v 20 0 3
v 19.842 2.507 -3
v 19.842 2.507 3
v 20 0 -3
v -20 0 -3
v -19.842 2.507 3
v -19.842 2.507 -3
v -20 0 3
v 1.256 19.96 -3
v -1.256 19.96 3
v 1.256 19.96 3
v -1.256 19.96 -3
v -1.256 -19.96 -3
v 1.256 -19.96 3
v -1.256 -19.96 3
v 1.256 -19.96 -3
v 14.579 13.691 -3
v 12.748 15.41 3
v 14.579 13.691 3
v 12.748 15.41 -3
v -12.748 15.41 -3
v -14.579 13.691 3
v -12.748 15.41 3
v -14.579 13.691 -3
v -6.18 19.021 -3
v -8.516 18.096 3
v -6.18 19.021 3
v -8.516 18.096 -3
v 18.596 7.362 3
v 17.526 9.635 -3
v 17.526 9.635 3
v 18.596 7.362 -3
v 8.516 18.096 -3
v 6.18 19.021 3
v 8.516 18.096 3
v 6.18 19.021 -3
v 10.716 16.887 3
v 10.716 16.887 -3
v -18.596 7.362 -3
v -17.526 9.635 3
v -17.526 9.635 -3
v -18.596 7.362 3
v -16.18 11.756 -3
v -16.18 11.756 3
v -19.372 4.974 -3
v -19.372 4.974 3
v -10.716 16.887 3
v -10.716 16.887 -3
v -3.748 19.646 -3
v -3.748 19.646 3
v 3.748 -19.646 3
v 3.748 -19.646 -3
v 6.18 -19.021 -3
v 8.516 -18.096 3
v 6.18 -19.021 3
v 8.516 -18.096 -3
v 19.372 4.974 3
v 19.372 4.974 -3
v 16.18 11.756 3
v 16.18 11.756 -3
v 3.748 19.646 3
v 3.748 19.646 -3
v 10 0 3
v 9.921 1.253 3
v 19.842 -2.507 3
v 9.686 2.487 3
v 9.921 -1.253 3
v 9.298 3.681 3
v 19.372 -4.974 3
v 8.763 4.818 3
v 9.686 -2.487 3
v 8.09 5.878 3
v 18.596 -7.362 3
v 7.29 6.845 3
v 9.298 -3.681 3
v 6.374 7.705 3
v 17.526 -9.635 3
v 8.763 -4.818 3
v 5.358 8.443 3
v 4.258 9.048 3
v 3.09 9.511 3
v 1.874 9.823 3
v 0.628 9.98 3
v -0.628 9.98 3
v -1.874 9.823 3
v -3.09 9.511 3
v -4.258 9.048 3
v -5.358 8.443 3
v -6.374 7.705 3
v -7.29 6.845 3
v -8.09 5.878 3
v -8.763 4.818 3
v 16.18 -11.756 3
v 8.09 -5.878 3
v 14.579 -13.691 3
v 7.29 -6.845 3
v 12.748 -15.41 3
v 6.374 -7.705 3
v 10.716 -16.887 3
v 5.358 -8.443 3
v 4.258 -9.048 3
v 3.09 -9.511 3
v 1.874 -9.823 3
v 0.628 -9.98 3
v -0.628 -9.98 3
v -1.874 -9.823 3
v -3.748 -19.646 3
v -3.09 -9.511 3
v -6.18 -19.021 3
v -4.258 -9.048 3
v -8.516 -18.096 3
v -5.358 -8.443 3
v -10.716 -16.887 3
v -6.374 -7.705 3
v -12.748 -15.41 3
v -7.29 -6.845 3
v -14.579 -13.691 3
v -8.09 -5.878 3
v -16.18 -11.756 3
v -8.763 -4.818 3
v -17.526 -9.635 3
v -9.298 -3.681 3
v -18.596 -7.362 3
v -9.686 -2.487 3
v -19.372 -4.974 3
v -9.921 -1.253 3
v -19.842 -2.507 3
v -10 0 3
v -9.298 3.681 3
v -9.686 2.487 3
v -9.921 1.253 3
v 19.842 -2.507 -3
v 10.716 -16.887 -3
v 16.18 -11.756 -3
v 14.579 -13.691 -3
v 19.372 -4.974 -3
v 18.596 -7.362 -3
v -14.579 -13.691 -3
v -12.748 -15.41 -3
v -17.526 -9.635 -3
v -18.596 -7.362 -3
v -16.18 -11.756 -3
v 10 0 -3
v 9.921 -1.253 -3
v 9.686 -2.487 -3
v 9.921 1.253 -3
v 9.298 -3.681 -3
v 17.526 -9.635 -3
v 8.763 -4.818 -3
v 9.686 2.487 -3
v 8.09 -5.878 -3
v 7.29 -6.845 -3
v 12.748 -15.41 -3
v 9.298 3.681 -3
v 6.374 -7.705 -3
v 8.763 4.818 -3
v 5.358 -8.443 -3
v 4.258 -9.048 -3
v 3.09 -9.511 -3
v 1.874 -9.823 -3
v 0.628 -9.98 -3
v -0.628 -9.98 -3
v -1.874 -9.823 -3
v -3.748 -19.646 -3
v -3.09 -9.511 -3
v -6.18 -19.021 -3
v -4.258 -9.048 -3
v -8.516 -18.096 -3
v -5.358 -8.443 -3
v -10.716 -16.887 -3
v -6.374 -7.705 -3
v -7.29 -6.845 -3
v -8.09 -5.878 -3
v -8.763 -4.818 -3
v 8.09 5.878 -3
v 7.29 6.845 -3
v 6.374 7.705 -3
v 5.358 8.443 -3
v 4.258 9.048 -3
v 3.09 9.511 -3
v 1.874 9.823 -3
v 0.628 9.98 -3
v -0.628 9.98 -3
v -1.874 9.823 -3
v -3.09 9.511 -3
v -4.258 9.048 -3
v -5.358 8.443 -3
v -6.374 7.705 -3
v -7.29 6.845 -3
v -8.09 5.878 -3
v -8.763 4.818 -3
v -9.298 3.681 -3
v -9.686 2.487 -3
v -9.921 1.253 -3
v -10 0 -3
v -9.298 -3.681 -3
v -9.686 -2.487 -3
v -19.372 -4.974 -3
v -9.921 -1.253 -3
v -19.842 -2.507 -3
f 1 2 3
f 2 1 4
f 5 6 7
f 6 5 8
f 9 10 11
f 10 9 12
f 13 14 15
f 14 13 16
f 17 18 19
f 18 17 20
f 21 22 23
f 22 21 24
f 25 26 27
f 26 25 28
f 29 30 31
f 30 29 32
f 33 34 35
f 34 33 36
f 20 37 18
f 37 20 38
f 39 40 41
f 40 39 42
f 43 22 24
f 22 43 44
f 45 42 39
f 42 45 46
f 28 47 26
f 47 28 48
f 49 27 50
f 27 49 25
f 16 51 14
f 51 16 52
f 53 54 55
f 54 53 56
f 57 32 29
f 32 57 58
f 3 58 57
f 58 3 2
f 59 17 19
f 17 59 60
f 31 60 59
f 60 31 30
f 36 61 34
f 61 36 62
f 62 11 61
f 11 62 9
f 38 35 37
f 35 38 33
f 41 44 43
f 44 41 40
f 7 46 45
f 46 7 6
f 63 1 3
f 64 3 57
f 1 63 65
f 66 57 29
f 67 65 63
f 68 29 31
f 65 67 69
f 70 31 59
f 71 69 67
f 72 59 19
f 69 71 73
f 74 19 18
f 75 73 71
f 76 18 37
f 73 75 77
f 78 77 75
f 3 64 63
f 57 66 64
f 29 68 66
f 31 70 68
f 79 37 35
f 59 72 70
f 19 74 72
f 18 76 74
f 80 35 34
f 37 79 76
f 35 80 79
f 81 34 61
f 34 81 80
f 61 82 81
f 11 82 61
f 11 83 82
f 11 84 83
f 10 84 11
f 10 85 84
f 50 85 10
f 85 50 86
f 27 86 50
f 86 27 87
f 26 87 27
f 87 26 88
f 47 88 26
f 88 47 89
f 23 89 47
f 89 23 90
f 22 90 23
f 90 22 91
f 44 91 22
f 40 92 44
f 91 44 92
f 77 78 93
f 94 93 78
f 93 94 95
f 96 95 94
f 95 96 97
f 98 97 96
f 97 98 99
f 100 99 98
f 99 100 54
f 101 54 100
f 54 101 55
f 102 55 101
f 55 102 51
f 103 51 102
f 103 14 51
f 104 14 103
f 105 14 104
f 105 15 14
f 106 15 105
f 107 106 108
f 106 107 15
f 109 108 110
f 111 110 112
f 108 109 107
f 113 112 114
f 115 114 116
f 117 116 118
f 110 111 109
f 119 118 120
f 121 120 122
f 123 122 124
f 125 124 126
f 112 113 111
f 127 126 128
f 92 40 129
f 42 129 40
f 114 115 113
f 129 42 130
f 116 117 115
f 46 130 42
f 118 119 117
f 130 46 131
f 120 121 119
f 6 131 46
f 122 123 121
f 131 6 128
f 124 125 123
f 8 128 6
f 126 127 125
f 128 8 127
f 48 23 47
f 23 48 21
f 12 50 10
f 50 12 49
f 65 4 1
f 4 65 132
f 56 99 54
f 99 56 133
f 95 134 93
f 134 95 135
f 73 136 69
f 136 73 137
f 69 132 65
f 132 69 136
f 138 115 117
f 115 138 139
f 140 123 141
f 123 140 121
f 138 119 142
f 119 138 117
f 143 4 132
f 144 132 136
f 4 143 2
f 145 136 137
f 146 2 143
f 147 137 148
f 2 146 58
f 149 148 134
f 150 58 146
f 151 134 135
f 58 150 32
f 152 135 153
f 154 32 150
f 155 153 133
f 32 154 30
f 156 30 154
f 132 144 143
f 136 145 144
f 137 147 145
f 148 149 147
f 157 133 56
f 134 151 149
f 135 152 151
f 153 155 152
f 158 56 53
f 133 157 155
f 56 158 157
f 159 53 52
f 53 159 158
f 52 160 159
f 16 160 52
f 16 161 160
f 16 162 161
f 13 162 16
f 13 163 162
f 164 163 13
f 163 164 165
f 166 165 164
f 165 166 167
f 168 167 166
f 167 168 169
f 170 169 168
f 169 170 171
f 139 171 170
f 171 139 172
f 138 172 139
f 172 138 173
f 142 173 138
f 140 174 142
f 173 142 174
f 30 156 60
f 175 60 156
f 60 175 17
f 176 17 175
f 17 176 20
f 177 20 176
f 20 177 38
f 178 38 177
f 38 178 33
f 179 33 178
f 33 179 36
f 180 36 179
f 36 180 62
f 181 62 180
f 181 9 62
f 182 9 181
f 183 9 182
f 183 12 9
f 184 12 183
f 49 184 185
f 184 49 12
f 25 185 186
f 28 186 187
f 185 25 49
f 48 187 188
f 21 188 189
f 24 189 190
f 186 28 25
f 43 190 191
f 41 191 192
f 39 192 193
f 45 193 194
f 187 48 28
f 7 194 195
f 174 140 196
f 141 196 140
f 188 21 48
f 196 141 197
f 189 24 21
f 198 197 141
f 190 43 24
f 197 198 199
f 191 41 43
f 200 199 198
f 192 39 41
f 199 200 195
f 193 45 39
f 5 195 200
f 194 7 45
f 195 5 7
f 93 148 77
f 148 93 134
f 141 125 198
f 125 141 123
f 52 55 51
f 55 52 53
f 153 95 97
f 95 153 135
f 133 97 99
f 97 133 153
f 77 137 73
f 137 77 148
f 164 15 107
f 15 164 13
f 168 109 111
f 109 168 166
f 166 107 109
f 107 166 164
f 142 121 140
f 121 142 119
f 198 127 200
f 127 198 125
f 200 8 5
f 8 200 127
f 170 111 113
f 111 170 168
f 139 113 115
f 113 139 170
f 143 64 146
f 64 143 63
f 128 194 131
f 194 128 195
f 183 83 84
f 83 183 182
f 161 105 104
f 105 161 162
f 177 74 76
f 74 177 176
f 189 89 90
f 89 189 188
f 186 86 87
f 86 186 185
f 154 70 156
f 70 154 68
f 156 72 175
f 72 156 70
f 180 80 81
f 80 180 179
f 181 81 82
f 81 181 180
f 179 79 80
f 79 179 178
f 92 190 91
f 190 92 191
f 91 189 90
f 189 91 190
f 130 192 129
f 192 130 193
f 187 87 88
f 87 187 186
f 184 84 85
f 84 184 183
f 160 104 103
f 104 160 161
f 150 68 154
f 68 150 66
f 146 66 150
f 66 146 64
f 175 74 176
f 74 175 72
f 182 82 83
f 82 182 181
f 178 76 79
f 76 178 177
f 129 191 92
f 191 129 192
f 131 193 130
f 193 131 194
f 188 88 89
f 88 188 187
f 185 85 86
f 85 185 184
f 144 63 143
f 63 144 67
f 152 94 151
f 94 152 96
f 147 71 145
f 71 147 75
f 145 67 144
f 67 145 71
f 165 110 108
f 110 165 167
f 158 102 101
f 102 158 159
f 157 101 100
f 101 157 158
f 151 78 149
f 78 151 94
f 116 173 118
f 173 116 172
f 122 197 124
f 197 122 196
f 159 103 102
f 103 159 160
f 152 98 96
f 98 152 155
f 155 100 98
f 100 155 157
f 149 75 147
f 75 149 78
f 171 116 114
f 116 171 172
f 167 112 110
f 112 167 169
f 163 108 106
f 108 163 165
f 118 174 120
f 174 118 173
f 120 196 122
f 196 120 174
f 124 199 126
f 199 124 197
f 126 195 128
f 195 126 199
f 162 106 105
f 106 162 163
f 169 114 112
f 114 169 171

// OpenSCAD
$fn = 50;


difference() {
	union() {
		translate(v = [0, 0, -3.0000000000]) {
			cylinder(h = 6, r = 20.0000000000);
		}
	}
	union() {
		translate(v = [0, 0, -100.0000000000]) {
			cylinder(h = 200, r = 10);
		}
	}
}
